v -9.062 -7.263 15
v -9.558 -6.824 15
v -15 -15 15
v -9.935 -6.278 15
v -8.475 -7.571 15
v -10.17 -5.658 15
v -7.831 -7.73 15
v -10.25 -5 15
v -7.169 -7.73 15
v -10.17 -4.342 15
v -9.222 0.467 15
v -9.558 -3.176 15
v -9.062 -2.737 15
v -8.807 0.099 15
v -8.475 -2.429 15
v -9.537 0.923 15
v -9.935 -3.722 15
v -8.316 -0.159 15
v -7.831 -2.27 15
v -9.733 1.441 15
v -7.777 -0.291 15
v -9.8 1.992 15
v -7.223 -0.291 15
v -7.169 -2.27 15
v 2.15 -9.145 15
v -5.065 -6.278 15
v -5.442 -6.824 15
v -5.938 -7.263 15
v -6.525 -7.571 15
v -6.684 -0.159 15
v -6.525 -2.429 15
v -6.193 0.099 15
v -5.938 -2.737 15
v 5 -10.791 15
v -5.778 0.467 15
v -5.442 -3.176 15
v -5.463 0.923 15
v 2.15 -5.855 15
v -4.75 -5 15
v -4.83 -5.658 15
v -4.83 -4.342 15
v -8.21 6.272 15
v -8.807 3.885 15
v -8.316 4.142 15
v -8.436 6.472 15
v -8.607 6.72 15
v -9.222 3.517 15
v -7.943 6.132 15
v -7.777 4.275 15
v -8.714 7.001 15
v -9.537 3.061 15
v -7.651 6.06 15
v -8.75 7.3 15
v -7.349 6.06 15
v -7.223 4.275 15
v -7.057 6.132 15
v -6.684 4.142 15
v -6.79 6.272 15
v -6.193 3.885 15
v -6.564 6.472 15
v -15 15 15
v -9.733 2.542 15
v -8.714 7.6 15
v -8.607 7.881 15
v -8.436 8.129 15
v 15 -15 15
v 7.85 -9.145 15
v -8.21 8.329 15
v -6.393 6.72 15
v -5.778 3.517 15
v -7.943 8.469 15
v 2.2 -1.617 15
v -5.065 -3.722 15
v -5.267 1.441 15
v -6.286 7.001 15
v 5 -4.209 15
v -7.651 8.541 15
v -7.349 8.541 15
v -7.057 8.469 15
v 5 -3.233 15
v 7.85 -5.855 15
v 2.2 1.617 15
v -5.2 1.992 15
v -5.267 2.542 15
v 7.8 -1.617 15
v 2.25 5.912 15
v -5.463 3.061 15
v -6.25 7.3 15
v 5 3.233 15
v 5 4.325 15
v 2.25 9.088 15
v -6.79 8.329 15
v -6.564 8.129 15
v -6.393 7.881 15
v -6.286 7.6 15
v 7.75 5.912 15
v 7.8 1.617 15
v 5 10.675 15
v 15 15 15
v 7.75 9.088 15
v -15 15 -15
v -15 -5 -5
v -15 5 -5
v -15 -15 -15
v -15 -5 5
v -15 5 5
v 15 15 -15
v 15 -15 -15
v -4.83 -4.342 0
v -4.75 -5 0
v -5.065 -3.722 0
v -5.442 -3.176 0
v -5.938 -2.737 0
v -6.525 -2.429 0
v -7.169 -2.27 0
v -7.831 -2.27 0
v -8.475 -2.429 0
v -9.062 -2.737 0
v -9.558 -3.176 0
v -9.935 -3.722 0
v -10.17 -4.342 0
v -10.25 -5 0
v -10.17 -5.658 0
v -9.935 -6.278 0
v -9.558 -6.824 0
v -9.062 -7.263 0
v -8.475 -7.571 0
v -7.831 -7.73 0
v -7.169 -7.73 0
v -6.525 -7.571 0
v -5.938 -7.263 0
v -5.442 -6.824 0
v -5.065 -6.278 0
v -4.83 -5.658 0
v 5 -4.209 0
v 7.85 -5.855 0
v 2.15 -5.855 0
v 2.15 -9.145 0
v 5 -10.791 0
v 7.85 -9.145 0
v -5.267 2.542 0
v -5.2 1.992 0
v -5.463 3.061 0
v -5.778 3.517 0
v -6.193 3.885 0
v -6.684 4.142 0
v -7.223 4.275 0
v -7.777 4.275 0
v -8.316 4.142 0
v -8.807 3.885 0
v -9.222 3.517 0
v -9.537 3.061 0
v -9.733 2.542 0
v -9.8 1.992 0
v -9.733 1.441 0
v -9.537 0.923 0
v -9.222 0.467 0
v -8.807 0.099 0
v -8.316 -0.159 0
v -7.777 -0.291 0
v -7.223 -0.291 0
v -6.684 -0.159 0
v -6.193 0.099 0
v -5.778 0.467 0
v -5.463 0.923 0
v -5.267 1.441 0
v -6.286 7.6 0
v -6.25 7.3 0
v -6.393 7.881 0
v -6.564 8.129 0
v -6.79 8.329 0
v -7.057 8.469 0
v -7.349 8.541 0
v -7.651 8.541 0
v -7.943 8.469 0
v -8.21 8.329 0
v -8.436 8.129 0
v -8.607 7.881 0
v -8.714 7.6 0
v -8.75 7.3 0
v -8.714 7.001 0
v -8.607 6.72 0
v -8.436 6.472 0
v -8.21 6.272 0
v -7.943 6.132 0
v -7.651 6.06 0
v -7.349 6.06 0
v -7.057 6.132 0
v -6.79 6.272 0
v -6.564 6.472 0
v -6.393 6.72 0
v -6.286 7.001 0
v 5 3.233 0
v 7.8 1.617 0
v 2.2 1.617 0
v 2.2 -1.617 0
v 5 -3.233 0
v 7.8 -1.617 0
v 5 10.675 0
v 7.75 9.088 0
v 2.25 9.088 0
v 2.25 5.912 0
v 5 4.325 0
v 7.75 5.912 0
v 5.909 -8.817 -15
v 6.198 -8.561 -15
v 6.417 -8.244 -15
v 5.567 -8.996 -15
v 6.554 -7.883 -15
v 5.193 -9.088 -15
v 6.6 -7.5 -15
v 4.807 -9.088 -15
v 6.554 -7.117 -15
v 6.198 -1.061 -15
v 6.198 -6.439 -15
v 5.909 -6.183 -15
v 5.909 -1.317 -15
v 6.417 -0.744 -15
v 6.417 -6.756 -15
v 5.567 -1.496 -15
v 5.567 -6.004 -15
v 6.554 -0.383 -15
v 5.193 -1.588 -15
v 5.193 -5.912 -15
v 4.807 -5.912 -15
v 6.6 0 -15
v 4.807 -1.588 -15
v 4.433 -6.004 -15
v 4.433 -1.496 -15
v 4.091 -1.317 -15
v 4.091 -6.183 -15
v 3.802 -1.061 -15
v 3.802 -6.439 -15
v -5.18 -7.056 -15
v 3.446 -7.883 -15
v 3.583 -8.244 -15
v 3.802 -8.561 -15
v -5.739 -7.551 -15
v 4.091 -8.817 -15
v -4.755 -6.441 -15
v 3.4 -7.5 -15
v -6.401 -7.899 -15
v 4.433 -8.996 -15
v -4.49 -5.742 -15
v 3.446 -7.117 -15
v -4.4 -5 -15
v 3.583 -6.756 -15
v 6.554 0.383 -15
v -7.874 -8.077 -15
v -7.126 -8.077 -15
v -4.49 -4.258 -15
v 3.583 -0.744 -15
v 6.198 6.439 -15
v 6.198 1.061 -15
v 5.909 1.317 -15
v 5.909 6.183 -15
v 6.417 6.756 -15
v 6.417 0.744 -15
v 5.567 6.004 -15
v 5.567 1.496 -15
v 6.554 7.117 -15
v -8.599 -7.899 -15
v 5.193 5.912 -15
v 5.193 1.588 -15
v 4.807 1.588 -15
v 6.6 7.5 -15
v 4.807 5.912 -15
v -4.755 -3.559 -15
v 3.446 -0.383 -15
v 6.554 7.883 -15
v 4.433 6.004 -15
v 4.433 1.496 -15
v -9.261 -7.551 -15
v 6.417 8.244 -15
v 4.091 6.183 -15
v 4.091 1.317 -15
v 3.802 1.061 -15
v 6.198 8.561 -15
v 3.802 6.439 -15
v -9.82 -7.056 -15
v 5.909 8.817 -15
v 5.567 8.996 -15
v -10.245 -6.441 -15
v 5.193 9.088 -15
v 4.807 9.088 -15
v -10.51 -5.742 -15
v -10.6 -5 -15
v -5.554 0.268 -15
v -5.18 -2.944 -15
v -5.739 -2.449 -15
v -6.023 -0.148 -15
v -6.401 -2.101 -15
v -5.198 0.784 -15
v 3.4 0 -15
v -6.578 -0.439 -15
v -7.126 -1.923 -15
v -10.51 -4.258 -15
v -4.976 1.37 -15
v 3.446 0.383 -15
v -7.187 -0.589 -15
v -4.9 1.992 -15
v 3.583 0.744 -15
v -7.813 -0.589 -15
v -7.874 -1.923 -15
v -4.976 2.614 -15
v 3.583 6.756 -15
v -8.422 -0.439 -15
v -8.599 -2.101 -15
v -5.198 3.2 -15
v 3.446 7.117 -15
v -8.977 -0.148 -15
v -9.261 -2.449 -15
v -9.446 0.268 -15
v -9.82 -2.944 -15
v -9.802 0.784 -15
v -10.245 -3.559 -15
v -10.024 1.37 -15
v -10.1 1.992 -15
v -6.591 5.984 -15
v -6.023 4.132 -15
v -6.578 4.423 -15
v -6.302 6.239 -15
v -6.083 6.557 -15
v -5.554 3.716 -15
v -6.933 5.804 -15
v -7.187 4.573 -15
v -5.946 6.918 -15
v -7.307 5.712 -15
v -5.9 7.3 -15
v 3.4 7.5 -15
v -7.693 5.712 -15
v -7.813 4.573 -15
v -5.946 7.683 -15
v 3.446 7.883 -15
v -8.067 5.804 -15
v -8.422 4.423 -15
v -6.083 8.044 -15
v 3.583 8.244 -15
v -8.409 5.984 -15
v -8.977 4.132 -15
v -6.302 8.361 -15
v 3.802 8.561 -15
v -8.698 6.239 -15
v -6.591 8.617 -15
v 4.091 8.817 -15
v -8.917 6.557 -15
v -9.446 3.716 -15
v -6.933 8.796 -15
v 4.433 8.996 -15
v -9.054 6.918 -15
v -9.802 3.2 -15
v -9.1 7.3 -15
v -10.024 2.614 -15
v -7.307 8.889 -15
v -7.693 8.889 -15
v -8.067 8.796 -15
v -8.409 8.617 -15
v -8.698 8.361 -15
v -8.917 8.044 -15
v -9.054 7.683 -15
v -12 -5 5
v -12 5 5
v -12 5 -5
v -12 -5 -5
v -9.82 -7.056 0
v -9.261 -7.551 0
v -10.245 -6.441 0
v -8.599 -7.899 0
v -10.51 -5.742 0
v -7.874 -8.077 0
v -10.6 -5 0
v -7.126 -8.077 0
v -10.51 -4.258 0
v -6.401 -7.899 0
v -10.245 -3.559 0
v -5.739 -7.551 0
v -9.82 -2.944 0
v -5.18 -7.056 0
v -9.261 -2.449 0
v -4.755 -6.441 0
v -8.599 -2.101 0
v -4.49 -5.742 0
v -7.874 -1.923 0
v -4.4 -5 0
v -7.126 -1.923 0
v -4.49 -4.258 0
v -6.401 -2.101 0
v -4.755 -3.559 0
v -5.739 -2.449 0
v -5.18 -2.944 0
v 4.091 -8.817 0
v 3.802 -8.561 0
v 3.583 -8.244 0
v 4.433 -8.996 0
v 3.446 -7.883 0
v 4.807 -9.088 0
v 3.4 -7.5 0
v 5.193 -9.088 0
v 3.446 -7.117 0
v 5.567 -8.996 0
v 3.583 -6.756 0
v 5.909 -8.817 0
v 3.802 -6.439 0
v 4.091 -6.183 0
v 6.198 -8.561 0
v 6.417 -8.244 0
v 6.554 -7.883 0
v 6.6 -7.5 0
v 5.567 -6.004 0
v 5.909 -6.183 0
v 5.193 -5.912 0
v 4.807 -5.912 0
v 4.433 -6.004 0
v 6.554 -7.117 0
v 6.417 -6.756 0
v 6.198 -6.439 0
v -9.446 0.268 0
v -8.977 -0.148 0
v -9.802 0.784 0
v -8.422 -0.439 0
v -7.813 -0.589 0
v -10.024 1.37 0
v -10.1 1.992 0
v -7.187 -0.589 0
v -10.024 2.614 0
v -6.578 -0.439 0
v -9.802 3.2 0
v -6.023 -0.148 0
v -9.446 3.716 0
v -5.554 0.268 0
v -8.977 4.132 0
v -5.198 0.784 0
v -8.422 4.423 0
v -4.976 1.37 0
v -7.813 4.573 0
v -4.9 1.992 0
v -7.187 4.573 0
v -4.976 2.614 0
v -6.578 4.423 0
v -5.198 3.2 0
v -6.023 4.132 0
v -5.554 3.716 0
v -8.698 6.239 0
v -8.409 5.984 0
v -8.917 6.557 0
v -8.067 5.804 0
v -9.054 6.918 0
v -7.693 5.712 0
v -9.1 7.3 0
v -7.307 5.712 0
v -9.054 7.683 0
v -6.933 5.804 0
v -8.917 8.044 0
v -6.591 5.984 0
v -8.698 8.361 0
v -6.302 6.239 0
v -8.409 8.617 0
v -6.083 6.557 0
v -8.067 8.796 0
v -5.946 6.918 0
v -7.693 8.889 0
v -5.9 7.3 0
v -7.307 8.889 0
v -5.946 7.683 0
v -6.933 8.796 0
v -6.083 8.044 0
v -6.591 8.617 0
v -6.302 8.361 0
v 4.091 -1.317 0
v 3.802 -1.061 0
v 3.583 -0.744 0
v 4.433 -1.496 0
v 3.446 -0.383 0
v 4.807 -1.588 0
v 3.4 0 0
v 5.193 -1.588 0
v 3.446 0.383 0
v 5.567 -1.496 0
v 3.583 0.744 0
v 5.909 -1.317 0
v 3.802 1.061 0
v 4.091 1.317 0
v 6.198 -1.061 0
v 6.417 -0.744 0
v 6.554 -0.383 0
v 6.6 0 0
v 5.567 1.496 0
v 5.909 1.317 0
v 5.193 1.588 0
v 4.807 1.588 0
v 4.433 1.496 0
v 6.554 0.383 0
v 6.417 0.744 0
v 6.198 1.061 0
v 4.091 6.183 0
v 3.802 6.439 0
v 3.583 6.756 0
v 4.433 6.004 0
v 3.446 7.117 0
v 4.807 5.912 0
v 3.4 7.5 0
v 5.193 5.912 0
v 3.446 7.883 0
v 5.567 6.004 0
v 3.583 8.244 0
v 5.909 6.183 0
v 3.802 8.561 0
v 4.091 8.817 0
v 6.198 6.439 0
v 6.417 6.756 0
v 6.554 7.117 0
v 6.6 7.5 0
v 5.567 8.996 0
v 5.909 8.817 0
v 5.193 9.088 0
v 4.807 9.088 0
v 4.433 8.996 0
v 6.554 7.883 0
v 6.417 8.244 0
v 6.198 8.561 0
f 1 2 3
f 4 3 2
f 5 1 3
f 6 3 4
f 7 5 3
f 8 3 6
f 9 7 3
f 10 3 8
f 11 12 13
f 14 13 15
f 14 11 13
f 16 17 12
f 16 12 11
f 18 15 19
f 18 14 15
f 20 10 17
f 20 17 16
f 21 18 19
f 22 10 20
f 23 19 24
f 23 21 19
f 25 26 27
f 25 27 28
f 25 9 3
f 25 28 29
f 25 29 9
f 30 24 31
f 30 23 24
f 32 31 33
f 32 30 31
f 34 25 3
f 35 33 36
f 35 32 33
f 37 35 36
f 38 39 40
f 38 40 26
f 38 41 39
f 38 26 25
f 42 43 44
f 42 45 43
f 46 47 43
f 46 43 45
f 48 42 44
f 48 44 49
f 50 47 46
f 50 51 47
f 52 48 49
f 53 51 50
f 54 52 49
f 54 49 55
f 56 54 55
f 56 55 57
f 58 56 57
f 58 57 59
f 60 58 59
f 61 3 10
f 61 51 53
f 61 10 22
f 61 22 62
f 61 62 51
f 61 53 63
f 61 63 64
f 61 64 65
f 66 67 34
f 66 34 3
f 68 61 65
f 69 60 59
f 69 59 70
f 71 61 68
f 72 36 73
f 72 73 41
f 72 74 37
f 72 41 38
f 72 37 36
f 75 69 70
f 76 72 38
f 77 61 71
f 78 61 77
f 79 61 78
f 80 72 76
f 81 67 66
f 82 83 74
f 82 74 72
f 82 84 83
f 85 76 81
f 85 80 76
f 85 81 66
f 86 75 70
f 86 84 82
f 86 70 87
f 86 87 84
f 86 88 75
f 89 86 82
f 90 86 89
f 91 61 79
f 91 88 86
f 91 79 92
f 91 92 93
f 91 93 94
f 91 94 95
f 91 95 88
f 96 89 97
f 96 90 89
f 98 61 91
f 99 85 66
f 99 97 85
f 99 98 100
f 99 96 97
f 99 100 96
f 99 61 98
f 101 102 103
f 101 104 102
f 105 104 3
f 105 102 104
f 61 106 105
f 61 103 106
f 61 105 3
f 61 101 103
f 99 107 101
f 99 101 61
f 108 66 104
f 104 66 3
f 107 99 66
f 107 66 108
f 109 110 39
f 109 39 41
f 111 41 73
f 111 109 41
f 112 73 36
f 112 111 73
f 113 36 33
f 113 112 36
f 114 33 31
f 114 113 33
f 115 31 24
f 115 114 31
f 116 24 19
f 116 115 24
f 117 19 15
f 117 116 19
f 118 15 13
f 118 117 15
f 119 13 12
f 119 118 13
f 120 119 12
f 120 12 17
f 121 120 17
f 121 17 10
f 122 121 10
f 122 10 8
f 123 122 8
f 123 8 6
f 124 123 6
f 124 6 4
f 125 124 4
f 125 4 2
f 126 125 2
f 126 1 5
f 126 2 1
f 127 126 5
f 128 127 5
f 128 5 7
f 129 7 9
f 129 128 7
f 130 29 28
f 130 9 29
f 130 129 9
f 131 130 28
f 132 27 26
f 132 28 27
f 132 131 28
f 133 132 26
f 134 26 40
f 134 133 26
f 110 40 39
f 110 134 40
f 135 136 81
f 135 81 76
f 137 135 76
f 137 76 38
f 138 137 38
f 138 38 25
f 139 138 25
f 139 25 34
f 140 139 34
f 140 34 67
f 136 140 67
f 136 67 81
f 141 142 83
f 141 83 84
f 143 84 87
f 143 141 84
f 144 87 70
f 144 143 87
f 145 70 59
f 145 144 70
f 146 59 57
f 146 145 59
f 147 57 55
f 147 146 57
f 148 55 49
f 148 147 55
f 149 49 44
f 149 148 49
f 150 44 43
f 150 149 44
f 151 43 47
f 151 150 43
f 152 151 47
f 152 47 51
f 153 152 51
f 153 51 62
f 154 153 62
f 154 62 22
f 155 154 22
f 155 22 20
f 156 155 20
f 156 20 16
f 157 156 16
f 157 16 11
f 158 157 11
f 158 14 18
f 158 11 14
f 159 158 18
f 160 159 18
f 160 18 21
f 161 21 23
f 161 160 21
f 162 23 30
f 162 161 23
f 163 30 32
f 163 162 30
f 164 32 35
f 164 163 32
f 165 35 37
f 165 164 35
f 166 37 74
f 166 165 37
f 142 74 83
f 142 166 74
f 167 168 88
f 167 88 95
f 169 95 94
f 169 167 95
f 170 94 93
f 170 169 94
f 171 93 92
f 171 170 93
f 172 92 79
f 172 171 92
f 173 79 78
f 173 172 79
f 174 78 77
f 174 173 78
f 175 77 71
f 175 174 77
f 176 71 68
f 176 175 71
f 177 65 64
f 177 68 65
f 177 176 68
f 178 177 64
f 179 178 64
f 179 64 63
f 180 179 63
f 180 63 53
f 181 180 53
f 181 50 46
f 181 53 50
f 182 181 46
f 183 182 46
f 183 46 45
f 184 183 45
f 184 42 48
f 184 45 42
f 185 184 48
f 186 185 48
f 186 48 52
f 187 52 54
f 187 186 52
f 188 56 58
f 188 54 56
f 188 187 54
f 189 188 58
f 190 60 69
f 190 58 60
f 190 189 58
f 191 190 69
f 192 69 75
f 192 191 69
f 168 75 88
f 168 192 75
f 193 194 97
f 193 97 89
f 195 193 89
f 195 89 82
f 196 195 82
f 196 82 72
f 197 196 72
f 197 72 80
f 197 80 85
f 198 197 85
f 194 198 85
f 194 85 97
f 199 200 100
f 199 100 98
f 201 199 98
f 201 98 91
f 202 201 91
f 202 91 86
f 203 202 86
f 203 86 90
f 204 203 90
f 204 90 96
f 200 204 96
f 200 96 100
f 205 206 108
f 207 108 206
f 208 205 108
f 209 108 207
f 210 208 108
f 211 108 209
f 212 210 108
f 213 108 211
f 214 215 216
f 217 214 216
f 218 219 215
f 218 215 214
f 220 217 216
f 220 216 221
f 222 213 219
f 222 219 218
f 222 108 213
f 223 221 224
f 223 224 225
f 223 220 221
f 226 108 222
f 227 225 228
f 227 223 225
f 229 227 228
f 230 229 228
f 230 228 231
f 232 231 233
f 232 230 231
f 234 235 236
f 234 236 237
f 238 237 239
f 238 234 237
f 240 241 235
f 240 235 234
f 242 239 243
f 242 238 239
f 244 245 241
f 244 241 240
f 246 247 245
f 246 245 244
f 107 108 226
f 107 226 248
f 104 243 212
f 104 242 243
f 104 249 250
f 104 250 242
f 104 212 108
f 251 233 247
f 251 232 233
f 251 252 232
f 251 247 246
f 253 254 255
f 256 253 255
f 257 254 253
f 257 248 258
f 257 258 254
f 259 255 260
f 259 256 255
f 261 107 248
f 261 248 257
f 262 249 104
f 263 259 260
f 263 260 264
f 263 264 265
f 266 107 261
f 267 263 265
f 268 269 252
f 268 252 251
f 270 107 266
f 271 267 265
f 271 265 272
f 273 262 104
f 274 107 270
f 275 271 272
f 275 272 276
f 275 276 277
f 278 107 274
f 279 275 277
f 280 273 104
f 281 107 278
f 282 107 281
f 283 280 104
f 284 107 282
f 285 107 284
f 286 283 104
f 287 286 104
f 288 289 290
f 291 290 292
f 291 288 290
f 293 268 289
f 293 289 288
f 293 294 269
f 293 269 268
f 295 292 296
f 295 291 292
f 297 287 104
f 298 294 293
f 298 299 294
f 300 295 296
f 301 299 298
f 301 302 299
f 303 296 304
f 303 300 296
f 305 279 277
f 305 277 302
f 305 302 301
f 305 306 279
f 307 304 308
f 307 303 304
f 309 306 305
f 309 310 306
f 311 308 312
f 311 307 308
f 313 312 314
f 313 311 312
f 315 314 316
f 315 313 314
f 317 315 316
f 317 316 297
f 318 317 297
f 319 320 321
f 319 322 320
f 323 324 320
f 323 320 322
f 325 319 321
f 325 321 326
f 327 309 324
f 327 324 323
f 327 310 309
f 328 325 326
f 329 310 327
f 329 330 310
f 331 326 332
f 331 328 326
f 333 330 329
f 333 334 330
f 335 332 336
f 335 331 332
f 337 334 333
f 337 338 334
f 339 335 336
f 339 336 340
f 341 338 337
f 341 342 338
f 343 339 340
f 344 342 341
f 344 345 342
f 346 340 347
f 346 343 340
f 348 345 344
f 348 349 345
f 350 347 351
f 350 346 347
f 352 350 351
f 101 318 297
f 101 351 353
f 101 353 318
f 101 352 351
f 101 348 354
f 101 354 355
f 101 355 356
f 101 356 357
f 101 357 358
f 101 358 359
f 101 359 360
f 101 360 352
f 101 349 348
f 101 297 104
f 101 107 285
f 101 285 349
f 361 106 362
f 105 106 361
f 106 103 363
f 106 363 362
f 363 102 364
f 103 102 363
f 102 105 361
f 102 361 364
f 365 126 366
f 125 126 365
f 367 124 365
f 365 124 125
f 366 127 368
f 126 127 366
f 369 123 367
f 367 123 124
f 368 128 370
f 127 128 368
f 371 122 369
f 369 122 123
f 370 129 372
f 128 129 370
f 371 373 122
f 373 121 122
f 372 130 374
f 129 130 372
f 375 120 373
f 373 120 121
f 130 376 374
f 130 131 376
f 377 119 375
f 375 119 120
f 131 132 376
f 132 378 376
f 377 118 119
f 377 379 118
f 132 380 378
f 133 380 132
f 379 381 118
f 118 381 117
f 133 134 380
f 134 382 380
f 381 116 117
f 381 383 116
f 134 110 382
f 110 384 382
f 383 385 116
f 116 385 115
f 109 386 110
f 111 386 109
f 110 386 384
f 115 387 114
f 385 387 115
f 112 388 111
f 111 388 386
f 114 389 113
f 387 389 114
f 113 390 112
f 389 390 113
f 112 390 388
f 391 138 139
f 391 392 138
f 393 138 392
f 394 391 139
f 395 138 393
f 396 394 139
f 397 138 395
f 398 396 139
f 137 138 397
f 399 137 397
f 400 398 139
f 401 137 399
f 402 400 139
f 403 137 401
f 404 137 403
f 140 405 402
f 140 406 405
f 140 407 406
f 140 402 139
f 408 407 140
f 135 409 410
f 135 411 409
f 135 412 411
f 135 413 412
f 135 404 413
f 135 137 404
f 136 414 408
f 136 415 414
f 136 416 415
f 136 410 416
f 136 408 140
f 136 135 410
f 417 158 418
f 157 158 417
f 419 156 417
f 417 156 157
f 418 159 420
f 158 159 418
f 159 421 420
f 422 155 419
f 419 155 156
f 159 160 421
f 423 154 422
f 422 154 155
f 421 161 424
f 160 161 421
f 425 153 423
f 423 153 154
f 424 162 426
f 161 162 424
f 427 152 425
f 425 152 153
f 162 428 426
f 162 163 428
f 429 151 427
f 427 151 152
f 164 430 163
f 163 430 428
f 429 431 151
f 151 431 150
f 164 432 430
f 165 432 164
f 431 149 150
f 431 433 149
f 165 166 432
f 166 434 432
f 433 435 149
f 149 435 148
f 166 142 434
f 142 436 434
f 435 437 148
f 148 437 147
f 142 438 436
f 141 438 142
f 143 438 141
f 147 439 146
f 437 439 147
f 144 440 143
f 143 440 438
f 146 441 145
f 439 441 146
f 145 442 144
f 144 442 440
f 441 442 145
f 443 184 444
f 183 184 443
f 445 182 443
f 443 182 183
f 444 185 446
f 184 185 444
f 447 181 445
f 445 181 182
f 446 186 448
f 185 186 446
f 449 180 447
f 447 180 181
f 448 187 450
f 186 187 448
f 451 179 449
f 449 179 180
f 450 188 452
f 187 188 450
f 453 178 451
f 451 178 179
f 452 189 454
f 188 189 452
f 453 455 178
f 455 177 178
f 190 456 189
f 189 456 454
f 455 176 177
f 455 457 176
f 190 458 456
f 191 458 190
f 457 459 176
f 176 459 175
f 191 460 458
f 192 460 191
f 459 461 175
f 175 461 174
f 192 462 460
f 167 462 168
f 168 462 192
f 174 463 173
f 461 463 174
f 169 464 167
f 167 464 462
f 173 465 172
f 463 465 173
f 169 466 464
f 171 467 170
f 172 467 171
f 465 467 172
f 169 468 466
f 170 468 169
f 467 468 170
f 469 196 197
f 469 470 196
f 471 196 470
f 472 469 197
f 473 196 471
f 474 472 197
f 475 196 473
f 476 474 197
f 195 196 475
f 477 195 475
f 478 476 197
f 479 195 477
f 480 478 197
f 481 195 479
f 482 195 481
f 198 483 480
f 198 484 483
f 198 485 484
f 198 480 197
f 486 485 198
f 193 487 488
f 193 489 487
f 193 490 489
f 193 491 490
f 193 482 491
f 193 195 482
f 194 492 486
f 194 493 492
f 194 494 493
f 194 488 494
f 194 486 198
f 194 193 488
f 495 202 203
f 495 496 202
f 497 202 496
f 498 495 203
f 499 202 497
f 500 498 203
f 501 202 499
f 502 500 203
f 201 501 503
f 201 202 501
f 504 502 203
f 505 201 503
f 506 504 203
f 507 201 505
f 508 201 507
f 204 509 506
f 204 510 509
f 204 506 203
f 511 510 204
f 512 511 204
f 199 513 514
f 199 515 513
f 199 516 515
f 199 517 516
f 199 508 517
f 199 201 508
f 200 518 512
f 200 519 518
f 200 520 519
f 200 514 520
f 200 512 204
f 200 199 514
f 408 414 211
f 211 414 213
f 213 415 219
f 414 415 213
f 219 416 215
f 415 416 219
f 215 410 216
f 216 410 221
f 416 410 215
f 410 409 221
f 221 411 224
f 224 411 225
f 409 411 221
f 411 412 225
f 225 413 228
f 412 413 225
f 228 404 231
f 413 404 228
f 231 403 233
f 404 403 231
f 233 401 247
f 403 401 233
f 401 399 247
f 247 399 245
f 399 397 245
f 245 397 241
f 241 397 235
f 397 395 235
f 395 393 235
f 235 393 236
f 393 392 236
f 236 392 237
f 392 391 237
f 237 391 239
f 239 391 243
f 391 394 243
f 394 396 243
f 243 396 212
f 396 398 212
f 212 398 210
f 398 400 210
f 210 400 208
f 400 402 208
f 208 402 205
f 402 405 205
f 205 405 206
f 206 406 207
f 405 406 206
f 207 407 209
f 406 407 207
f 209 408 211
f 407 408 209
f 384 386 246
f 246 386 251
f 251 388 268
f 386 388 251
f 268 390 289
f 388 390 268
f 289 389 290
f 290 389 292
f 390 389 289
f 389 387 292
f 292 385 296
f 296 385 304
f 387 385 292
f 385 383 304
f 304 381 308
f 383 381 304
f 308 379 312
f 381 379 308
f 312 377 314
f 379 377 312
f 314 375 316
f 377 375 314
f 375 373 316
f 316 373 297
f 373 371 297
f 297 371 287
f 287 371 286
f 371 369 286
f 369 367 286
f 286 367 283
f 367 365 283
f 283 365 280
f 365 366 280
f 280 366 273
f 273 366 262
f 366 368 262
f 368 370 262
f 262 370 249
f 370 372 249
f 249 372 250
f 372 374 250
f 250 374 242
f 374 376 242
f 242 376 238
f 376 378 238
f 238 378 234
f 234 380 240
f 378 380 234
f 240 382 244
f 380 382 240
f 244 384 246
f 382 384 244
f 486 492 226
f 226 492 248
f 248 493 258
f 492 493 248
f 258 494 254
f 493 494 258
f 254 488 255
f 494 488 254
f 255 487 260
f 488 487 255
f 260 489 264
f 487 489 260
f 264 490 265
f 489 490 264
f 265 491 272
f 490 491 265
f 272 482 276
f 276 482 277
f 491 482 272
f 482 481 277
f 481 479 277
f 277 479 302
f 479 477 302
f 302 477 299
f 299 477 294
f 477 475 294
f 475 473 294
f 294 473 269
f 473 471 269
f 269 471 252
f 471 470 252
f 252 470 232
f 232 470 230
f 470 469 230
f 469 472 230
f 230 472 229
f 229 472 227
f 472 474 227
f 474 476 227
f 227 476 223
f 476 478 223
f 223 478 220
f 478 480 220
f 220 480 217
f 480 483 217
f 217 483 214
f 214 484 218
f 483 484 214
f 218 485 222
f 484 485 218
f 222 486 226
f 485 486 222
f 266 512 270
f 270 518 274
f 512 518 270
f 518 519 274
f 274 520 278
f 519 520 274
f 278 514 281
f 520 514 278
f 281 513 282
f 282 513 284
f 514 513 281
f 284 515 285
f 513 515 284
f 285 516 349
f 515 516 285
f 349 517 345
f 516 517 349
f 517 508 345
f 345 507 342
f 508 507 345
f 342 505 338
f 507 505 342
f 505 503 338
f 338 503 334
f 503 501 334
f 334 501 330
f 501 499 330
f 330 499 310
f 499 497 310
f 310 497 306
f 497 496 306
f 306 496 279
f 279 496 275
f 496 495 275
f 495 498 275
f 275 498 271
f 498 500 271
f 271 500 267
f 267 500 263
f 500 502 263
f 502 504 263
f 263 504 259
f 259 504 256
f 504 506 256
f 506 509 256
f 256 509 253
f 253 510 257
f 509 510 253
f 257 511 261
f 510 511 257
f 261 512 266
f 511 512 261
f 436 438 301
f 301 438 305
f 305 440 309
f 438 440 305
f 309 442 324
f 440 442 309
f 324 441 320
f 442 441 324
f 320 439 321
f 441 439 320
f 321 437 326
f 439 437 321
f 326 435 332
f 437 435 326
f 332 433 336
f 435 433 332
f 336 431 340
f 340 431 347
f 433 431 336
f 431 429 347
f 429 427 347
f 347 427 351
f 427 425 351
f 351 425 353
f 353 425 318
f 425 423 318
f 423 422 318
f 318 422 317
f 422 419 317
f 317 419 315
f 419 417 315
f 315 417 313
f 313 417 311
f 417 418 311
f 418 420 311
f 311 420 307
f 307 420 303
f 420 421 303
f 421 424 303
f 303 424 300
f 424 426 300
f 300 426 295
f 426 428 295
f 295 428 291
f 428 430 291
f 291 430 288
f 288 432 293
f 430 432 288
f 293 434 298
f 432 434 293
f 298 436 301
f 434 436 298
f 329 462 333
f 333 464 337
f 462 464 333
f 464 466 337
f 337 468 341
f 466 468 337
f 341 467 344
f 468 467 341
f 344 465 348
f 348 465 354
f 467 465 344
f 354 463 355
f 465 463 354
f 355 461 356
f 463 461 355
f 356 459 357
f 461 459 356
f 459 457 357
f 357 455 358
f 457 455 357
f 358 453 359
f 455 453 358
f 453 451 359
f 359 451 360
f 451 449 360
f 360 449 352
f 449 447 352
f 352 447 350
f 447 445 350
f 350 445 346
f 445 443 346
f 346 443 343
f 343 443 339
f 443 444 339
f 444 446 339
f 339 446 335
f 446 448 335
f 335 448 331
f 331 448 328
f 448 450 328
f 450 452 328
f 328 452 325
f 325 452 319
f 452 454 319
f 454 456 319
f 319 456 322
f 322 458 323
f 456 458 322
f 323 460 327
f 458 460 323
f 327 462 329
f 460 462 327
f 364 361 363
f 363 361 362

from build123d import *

# Parameters (mm, degrees)
SKETCH_W        = 30
SKETCH_H        = 30
PAD_DEPTH       = 15
SKETCH001_R     = 1.6
SKETCH001_R_2   = 2.6
SKETCH001_R_3   = 3.1
POCKET_DEPTH    = 15.001
SKETCH002_R     = 1.25
SKETCH002_R_2   = 2.3
SKETCH002_R_3   = 2.75
POCKET001_DEPTH = 15.001
SKETCH003_W     = 10
SKETCH003_H     = 10
POCKET002_DEPTH = 3


with BuildPart() as part:
    # Sketch → Pad (new body, symmetric)
    with BuildSketch(Plane.XZ):
        Rectangle(SKETCH_W, SKETCH_H)
    extrude(amount=PAD_DEPTH, both=True)

    # Sketch001 → Pocket (cut, through all)
    with BuildSketch(Plane.XY):
        with Locations((-7.5, 7.300443)):
            Circle(SKETCH001_R)
        with Locations((-7.5, 1.991905)):
            Circle(SKETCH001_R_2)
        with Locations((-7.5, -5)):
            Circle(SKETCH001_R_3)
        with Locations((5, 7.5)):
            Circle(SKETCH001_R)
        with Locations((5, 0)):
            Circle(SKETCH001_R)
        with Locations((5, -7.5)):
            Circle(SKETCH001_R)
    extrude(amount=-POCKET_DEPTH, mode=Mode.SUBTRACT)

    # Sketch002 → Pocket001 (cut, through all)
    with BuildSketch(Plane.XY):
        with Locations((-7.5, 7.300443)):
            Circle(SKETCH002_R)
        with Locations((-7.5, 1.991905)):
            Circle(SKETCH002_R_2)
        with Locations((-7.5, -5)):
            Circle(SKETCH002_R_3)
        Polygon((7.75, 5.912287), (7.75, 9.087713), (5, 10.675426), (2.25, 9.087713), (2.25, 5.912287), (5, 4.324574), align=None)
        Polygon((7.8, -1.616581), (7.8, 1.616581), (5, 3.233162), (2.2, 1.616581), (2.2, -1.616581), (5, -3.233162), align=None)
        Polygon((7.85, -9.145448), (7.85, -5.854552), (5, -4.209103), (2.15, -5.854552), (2.15, -9.145448), (5, -10.790897), align=None)
    extrude(amount=POCKET001_DEPTH, mode=Mode.SUBTRACT)

    # Sketch003 (on Face2 of Pocket001) → Pocket002 (cut)
    with BuildSketch(Plane(origin=(-15, 0, 0), x_dir=(0, 0, -1), z_dir=(-1, 0, 0))):
        Rectangle(SKETCH003_W, SKETCH003_H)
    extrude(amount=-POCKET002_DEPTH, mode=Mode.SUBTRACT)


solid = part.part
